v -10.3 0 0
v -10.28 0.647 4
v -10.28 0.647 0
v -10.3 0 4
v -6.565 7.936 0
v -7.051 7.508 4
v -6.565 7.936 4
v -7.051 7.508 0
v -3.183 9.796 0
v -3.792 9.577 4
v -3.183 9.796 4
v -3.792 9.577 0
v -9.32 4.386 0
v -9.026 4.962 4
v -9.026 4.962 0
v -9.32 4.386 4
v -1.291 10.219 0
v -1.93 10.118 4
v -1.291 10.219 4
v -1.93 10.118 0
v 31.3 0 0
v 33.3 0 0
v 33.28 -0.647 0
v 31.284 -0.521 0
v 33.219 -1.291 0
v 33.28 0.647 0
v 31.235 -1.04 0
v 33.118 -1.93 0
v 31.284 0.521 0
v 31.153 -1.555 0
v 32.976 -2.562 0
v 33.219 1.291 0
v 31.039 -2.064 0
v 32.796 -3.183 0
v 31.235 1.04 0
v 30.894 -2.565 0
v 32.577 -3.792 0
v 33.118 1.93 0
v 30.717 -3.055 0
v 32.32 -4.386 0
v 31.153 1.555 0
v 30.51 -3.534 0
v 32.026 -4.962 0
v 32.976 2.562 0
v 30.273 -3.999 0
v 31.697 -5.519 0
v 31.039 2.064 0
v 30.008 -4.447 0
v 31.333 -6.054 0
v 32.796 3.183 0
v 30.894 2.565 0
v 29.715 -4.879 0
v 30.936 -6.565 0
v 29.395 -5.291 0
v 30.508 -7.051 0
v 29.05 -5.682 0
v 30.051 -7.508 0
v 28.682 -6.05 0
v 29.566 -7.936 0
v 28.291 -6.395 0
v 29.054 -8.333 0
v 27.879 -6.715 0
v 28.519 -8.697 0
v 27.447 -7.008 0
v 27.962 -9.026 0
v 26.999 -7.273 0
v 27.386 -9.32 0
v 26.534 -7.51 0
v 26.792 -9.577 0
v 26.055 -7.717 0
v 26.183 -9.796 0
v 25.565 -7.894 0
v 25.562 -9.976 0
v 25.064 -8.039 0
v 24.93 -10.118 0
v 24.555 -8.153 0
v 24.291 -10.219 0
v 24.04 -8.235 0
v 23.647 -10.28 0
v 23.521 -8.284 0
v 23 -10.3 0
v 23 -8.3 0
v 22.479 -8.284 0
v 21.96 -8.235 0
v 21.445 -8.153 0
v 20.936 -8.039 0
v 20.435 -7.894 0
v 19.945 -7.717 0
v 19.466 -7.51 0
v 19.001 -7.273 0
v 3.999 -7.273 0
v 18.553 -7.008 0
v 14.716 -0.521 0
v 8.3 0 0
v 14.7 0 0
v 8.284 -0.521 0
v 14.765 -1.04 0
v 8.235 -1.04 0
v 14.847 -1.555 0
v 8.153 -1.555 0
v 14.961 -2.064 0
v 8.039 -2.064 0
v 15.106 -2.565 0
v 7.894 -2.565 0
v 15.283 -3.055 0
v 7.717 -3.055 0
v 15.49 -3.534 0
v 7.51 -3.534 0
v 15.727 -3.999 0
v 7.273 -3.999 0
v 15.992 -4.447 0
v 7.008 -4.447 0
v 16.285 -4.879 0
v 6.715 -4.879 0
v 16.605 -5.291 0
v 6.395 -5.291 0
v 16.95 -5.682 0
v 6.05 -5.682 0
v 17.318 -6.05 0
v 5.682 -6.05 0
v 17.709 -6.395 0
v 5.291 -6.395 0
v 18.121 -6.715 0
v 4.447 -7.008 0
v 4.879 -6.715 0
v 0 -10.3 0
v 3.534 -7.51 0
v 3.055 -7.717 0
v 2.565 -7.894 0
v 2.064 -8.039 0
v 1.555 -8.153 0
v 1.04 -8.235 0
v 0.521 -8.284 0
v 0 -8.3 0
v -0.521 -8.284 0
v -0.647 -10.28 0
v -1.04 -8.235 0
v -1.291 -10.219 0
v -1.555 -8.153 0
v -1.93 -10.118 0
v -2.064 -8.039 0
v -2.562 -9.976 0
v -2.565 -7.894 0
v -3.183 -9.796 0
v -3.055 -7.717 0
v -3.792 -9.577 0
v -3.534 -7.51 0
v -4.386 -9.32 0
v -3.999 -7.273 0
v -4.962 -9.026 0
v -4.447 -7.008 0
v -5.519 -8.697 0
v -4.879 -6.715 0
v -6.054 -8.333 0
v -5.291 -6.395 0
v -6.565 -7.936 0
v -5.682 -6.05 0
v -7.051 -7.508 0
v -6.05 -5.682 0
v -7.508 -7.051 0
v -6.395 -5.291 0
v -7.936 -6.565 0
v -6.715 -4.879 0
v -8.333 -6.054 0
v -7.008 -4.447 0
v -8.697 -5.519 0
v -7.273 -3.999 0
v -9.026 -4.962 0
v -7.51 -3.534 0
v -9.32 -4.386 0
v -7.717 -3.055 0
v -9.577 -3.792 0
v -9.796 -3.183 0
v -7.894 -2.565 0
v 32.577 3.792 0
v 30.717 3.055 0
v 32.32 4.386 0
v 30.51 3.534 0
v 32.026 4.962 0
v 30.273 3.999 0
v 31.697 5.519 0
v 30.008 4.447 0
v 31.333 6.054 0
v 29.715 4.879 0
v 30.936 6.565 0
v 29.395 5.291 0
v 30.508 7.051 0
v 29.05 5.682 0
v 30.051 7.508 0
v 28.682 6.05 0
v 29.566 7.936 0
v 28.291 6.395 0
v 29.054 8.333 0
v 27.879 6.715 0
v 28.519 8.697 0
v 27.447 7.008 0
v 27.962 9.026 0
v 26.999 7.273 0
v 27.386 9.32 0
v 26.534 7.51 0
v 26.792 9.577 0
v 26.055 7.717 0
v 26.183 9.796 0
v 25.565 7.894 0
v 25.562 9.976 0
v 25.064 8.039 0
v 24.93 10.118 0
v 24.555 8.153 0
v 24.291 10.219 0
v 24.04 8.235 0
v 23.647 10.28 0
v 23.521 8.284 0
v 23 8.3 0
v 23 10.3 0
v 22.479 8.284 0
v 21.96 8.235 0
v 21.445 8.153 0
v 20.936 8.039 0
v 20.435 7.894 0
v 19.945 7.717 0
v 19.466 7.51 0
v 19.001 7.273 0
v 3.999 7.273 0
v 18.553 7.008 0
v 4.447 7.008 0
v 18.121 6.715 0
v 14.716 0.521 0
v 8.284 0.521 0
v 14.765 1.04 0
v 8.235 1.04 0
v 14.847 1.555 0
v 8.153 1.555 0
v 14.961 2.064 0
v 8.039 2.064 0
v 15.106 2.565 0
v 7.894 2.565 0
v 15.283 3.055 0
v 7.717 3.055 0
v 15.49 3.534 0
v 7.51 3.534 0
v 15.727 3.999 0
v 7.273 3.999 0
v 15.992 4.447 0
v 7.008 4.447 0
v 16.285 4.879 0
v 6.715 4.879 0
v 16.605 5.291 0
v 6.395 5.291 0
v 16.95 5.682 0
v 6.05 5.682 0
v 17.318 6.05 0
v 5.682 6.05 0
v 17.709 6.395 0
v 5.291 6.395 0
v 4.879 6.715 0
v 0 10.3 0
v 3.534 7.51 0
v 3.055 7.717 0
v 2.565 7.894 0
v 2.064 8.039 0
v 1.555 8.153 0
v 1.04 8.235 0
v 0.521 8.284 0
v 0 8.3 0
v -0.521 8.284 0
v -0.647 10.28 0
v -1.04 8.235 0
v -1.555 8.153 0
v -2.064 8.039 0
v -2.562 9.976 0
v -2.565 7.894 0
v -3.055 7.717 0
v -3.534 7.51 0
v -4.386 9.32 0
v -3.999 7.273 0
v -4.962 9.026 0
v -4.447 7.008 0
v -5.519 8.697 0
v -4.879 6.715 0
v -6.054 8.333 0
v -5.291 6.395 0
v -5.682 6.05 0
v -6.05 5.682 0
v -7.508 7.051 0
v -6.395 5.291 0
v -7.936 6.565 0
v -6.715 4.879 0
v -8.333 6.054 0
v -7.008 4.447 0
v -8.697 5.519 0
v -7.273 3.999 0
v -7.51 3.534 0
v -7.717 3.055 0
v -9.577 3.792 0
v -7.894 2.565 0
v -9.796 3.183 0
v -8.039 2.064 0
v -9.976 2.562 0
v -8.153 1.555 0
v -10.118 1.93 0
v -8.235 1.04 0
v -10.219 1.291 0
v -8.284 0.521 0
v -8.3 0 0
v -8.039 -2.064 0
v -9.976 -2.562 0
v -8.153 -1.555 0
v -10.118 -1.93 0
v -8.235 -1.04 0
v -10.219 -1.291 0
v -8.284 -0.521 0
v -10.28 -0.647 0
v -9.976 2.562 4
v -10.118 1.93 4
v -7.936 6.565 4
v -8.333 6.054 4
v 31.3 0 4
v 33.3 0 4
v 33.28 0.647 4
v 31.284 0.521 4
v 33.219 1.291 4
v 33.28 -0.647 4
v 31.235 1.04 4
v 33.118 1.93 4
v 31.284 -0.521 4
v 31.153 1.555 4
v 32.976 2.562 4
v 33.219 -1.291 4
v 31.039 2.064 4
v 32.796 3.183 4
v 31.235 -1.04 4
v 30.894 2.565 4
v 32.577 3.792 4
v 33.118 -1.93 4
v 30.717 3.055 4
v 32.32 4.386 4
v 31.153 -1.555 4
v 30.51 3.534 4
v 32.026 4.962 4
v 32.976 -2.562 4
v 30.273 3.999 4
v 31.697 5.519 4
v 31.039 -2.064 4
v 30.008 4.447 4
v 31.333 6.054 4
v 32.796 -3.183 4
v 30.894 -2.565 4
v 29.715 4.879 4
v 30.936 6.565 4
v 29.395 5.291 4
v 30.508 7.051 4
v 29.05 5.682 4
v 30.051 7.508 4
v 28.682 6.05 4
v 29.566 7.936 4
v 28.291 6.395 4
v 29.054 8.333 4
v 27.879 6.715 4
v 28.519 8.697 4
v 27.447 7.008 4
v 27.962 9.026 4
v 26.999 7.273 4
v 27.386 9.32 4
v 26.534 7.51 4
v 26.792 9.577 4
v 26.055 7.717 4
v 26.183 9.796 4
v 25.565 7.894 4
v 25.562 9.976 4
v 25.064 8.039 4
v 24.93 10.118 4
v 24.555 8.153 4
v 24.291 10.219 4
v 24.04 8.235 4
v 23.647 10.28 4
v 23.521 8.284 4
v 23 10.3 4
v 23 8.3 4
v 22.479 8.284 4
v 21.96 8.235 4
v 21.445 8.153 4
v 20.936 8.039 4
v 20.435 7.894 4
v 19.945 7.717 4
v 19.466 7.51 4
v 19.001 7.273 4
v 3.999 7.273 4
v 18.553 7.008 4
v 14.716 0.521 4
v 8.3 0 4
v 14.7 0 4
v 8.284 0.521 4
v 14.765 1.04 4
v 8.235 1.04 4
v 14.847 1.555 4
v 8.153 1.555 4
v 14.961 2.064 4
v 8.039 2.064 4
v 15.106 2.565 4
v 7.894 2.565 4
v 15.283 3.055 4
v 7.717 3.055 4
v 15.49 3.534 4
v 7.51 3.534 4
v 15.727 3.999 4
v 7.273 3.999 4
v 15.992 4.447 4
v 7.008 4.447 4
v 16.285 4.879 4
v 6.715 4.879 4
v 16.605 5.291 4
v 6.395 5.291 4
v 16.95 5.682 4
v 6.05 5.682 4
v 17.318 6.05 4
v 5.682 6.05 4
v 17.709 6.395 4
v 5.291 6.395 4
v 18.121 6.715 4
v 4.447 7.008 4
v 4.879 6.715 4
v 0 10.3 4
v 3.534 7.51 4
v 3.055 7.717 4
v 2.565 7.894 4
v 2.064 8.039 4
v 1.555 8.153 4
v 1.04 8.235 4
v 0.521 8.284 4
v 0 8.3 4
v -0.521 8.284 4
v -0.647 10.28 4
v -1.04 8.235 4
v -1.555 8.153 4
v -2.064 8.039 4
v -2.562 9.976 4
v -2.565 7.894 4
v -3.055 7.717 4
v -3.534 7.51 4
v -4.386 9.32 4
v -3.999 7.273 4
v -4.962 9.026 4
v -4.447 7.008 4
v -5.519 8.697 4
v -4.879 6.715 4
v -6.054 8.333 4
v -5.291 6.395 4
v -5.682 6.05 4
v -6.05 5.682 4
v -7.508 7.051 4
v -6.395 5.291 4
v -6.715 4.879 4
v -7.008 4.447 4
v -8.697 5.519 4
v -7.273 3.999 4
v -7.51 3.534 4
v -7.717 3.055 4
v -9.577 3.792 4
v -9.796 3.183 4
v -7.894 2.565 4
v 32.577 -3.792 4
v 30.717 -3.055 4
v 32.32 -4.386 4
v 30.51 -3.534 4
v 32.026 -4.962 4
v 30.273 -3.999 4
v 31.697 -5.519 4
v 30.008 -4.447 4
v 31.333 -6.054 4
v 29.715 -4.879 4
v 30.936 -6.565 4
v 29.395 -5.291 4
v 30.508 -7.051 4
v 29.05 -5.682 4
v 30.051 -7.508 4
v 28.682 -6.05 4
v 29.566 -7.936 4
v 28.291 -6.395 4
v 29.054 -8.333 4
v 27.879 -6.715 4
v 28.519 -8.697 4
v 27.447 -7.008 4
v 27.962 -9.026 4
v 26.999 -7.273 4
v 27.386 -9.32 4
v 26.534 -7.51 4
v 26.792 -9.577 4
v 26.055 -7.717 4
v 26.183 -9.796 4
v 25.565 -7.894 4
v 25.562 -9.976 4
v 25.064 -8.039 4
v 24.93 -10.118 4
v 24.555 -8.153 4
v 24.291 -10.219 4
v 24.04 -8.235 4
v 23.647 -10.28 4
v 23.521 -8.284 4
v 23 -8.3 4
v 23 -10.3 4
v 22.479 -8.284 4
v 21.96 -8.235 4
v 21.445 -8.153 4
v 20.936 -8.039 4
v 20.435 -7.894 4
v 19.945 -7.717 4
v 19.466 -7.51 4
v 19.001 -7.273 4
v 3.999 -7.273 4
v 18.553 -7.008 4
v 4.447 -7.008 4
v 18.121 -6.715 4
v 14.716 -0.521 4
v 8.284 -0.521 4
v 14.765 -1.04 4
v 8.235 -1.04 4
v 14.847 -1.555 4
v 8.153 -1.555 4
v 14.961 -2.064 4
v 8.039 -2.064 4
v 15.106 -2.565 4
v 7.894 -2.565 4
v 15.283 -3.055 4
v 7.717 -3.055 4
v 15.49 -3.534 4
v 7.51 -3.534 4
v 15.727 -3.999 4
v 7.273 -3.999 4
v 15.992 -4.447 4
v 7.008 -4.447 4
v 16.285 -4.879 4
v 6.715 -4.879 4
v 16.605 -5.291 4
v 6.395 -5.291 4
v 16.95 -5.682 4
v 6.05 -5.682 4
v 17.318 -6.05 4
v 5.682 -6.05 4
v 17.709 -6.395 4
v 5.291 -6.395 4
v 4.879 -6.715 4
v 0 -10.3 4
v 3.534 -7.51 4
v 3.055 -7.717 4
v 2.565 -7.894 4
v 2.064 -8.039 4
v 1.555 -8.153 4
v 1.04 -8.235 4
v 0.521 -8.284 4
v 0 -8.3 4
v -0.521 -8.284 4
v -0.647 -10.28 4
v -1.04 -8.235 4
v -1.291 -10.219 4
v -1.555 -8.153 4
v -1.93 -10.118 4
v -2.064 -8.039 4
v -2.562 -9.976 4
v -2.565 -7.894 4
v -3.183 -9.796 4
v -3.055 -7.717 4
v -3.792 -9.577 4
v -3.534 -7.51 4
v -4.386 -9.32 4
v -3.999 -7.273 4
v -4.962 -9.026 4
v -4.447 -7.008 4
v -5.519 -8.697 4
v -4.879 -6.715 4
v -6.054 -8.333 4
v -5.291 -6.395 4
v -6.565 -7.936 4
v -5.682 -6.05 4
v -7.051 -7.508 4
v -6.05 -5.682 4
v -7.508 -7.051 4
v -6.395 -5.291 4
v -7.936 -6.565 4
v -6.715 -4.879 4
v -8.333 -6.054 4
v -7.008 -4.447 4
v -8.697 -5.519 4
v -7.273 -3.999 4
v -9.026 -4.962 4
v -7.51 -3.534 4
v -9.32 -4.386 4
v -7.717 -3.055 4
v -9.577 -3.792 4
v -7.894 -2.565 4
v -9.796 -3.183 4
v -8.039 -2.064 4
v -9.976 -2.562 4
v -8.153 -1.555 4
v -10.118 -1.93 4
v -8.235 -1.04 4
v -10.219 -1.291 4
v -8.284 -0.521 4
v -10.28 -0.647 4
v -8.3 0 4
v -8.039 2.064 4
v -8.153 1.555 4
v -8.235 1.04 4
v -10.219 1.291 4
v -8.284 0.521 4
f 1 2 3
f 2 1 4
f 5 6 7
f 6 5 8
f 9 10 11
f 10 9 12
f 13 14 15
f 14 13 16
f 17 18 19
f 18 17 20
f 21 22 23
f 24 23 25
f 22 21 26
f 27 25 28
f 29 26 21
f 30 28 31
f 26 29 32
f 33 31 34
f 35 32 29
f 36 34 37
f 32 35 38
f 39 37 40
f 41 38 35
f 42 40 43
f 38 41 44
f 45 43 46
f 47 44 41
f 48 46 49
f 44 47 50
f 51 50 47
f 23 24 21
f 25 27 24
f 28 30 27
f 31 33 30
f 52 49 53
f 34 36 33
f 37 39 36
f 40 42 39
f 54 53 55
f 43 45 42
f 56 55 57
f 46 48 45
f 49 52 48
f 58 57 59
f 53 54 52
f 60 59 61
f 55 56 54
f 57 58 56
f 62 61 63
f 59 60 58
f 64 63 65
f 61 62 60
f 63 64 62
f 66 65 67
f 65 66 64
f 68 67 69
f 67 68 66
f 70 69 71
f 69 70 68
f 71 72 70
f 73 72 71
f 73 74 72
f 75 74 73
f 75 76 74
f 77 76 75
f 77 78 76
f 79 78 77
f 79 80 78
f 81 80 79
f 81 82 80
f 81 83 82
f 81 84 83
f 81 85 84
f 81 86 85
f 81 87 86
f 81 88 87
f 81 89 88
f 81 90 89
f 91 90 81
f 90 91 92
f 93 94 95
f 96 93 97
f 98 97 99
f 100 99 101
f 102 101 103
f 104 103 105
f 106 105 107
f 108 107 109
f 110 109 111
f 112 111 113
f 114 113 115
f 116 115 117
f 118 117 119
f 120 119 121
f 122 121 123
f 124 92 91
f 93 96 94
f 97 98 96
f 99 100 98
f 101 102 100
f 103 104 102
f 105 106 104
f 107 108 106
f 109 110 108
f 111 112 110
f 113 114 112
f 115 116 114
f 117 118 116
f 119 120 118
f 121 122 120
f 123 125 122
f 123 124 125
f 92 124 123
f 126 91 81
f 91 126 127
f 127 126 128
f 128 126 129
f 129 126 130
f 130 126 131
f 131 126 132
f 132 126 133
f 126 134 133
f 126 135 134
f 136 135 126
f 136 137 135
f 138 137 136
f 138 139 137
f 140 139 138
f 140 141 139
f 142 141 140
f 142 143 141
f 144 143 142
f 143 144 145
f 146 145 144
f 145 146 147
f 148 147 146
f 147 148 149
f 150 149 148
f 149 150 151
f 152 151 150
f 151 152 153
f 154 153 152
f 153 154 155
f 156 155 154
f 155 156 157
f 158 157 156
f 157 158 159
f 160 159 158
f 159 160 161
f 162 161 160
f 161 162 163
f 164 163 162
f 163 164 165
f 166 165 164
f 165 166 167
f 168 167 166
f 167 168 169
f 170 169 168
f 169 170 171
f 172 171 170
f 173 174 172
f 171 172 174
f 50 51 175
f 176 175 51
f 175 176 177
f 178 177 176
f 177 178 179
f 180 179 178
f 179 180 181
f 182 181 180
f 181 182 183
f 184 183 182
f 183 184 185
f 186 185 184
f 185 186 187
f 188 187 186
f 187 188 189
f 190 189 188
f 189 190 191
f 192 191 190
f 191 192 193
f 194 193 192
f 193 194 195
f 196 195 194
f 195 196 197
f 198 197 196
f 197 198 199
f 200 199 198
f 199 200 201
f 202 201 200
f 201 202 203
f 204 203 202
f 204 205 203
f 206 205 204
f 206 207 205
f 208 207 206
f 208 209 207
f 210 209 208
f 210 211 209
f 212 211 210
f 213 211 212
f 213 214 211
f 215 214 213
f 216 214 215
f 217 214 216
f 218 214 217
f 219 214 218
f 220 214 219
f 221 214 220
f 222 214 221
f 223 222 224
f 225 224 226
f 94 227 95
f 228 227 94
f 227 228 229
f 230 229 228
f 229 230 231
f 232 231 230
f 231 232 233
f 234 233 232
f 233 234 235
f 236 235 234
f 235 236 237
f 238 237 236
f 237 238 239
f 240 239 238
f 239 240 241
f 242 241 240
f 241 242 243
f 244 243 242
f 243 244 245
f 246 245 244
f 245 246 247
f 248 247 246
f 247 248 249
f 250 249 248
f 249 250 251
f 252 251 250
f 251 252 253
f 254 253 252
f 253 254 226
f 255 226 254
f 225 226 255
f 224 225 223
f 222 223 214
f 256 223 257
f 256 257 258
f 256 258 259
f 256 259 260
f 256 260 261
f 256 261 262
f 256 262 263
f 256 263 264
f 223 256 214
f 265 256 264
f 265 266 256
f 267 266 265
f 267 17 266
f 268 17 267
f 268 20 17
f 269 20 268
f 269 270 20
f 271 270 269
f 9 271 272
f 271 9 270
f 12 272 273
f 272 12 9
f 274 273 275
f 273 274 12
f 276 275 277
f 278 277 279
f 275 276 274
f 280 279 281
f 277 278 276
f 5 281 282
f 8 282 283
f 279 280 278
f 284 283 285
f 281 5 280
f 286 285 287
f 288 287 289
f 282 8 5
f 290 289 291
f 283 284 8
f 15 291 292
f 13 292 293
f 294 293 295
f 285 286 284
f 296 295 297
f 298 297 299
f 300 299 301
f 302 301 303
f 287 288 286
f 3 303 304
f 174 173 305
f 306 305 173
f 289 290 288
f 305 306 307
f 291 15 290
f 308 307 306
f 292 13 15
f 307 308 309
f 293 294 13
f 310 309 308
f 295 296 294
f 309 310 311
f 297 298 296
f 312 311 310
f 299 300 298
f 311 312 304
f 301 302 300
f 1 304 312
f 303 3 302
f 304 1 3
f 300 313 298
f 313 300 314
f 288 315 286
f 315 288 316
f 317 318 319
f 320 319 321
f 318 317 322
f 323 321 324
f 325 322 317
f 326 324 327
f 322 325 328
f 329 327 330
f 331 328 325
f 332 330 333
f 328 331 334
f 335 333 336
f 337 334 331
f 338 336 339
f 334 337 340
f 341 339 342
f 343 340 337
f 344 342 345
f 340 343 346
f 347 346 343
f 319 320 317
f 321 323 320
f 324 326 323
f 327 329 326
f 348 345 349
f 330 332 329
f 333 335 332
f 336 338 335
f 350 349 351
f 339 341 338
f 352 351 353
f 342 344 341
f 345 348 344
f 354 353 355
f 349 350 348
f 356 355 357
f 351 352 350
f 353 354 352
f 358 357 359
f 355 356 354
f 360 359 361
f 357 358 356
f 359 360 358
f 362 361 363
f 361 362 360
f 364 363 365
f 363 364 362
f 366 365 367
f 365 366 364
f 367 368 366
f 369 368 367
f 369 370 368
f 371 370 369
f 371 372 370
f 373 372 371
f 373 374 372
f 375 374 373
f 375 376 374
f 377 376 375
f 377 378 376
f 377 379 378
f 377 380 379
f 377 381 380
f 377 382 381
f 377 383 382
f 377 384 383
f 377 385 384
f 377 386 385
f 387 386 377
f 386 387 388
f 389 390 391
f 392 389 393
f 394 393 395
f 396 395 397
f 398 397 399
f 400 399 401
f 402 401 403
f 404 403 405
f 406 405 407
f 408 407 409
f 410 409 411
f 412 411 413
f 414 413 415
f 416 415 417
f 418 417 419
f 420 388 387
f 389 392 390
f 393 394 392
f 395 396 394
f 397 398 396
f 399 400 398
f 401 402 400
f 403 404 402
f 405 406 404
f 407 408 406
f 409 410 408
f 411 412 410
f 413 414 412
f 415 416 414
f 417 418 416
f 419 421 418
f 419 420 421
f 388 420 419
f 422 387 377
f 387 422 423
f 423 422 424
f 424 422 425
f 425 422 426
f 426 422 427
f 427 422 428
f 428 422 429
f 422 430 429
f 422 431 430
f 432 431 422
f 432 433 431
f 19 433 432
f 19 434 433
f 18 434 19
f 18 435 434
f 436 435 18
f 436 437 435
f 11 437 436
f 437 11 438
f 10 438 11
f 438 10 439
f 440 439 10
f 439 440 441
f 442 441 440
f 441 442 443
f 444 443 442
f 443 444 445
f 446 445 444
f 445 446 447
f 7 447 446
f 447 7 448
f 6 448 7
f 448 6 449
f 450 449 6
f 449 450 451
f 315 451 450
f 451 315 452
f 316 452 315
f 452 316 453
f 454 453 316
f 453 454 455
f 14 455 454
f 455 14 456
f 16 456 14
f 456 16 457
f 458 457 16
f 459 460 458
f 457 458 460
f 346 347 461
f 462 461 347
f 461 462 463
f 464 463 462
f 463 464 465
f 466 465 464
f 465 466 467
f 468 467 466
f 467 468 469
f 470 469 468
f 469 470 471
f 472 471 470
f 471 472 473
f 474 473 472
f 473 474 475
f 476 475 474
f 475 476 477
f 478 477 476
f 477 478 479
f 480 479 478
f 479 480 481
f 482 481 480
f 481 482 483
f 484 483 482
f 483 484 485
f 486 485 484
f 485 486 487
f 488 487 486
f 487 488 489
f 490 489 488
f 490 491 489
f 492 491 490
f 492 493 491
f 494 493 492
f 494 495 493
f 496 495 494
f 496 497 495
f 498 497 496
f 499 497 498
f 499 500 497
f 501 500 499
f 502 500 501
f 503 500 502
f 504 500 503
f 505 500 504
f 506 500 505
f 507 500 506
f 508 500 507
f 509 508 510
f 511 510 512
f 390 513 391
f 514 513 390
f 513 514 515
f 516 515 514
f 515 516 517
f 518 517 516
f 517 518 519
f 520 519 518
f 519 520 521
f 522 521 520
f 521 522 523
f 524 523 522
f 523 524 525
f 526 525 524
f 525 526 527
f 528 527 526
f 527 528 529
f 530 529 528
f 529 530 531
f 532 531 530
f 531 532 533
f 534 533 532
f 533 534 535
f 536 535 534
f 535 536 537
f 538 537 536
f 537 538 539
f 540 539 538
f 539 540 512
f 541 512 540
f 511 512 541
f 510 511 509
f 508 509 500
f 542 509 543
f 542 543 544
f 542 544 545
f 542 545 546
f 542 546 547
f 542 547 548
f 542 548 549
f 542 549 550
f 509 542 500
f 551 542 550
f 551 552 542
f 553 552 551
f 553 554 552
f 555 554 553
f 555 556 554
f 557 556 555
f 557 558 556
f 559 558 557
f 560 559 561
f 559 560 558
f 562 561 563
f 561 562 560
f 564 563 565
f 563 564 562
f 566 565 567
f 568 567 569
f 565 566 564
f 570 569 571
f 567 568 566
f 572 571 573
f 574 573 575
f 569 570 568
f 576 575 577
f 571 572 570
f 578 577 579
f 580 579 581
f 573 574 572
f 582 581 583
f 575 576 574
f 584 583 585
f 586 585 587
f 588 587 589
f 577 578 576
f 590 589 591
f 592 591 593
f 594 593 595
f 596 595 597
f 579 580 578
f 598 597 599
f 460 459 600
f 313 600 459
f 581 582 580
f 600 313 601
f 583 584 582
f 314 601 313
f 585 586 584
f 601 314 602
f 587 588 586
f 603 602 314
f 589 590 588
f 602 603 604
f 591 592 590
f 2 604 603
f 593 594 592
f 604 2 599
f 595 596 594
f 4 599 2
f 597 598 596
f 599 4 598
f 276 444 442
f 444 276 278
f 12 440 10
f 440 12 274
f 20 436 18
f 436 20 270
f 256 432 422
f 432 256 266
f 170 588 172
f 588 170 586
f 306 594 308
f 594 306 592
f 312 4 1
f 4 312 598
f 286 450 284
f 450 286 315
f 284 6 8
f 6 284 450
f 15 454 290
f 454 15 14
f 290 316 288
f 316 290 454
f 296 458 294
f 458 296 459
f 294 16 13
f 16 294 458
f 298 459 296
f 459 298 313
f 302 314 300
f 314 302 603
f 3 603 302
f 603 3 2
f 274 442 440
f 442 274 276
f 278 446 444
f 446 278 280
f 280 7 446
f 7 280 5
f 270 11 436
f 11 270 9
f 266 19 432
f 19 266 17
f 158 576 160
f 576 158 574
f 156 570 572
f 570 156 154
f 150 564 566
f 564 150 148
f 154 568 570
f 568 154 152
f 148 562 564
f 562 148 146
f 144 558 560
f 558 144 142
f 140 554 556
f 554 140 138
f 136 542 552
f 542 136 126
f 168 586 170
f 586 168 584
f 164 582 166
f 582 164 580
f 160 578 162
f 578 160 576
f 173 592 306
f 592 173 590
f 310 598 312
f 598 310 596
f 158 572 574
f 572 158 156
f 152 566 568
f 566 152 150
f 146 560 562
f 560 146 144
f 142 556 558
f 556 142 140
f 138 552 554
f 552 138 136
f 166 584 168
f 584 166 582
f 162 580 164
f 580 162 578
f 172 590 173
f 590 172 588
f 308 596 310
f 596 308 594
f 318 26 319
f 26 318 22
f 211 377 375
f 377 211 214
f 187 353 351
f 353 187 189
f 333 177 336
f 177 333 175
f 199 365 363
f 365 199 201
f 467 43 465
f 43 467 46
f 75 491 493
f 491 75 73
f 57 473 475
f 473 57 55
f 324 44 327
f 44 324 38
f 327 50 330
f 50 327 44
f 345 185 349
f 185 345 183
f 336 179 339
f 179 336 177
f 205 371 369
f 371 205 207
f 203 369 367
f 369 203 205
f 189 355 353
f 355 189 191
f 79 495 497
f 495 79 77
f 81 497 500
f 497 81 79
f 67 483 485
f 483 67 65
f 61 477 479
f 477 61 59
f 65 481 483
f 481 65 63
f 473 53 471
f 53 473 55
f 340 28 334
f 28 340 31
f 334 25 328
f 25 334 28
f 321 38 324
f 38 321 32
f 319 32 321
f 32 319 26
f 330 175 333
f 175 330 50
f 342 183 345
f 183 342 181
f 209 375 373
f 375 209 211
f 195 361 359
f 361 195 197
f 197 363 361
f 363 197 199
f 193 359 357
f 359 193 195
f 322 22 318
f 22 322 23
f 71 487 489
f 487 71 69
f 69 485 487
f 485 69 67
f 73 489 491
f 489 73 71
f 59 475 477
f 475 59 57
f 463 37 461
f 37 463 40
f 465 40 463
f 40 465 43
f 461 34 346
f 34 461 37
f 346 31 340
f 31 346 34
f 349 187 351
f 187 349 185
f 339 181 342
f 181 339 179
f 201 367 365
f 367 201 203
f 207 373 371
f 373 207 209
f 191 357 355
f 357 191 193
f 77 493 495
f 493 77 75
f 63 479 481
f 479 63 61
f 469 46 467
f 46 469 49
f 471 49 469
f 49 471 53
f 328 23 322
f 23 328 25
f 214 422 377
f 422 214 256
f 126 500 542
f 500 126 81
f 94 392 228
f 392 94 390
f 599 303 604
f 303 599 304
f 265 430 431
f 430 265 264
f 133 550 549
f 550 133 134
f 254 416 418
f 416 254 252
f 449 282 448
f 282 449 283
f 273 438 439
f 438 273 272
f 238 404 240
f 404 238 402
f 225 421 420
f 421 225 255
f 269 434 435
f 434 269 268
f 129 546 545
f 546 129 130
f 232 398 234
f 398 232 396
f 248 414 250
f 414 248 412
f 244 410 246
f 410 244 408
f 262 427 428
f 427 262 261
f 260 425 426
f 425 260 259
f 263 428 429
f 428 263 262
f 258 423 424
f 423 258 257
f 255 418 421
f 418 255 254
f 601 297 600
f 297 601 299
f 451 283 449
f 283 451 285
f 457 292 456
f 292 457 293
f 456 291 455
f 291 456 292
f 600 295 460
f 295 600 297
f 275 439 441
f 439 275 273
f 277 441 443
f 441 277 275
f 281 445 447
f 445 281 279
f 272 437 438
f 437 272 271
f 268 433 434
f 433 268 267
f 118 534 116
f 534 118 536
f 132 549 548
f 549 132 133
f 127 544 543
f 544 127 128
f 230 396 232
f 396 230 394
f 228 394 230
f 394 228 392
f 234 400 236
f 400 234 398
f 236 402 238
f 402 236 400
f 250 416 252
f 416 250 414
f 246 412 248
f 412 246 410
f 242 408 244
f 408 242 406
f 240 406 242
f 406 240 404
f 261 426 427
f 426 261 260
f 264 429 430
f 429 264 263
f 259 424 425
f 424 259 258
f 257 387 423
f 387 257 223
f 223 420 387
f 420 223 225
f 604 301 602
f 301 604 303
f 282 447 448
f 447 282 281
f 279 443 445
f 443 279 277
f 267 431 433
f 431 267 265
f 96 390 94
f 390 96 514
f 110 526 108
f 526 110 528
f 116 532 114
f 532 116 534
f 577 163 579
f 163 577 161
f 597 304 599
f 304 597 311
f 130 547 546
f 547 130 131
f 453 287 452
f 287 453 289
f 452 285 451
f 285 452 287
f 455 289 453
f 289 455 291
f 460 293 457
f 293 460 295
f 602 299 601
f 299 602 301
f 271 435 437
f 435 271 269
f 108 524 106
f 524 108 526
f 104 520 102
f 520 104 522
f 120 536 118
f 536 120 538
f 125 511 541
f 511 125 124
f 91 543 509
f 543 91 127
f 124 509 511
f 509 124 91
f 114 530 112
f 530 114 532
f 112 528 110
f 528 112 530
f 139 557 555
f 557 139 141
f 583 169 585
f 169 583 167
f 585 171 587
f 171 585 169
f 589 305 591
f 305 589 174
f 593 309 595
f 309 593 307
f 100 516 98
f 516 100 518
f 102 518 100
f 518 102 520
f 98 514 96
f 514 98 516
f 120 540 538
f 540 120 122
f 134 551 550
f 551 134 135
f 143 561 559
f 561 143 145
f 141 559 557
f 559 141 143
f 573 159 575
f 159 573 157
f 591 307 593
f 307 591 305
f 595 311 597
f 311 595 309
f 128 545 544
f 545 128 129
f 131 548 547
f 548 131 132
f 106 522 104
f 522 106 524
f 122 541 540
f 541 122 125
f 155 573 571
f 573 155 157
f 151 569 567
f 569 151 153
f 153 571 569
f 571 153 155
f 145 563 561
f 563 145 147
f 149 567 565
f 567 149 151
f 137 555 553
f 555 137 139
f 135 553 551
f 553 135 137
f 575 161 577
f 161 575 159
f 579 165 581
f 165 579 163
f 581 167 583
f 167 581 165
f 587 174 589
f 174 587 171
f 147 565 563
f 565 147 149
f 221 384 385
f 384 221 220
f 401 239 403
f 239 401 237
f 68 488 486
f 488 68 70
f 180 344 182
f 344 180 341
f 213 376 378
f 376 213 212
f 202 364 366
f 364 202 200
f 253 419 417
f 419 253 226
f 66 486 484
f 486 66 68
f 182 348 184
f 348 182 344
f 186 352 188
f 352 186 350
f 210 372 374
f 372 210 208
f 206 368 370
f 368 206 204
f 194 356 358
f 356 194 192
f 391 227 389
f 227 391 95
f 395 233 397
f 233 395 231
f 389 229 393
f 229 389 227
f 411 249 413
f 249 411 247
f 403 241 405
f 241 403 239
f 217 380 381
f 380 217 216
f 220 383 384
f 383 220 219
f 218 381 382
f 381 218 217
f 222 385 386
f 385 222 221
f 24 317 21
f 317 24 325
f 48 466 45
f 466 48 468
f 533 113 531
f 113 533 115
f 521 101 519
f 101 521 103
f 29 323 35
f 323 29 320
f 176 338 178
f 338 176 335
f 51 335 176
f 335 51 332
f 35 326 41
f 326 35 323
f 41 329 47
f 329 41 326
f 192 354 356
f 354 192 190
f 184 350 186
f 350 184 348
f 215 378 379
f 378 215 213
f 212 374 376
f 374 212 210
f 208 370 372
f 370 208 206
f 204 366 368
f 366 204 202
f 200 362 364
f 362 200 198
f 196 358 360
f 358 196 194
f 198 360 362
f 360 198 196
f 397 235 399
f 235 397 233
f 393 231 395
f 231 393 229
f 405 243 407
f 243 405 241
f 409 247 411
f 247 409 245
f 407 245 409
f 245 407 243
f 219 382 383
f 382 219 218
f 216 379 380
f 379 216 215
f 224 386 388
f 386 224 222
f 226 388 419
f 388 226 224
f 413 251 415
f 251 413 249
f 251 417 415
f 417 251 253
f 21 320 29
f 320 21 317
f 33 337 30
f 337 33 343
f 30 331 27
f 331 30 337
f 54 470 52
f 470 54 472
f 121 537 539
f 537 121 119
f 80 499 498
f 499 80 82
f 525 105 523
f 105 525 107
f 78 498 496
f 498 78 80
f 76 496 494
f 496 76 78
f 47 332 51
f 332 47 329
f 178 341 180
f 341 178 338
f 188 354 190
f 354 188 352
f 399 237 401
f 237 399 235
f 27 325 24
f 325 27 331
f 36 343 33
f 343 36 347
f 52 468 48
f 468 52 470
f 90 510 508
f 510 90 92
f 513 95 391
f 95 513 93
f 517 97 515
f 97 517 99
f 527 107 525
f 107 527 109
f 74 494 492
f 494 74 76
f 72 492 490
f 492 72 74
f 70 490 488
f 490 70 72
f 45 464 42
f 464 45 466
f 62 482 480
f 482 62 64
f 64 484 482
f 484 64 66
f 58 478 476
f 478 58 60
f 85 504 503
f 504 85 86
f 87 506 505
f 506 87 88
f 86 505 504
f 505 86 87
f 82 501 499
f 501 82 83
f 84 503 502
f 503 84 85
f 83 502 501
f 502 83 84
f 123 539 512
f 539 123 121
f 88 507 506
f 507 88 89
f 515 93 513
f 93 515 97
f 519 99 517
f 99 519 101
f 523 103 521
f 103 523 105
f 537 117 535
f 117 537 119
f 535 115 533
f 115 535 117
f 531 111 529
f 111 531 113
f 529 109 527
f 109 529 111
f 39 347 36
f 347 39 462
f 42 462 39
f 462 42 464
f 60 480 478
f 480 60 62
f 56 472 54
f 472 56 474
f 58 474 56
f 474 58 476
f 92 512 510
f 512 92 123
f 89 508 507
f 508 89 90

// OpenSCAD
$fn=100;
//bottom part
difference(){
    union(){
        cylinder(h=4, d=20.6);
        translate([23,0,0]) cylinder(h=4, d=20.6);
        translate([0,-10.3,0]) cube([23,20.6,4]);
    }
    
    cylinder(h=4, d=16.6);
    translate([23,0,0]) cylinder(h=4, d=16.6);
}
